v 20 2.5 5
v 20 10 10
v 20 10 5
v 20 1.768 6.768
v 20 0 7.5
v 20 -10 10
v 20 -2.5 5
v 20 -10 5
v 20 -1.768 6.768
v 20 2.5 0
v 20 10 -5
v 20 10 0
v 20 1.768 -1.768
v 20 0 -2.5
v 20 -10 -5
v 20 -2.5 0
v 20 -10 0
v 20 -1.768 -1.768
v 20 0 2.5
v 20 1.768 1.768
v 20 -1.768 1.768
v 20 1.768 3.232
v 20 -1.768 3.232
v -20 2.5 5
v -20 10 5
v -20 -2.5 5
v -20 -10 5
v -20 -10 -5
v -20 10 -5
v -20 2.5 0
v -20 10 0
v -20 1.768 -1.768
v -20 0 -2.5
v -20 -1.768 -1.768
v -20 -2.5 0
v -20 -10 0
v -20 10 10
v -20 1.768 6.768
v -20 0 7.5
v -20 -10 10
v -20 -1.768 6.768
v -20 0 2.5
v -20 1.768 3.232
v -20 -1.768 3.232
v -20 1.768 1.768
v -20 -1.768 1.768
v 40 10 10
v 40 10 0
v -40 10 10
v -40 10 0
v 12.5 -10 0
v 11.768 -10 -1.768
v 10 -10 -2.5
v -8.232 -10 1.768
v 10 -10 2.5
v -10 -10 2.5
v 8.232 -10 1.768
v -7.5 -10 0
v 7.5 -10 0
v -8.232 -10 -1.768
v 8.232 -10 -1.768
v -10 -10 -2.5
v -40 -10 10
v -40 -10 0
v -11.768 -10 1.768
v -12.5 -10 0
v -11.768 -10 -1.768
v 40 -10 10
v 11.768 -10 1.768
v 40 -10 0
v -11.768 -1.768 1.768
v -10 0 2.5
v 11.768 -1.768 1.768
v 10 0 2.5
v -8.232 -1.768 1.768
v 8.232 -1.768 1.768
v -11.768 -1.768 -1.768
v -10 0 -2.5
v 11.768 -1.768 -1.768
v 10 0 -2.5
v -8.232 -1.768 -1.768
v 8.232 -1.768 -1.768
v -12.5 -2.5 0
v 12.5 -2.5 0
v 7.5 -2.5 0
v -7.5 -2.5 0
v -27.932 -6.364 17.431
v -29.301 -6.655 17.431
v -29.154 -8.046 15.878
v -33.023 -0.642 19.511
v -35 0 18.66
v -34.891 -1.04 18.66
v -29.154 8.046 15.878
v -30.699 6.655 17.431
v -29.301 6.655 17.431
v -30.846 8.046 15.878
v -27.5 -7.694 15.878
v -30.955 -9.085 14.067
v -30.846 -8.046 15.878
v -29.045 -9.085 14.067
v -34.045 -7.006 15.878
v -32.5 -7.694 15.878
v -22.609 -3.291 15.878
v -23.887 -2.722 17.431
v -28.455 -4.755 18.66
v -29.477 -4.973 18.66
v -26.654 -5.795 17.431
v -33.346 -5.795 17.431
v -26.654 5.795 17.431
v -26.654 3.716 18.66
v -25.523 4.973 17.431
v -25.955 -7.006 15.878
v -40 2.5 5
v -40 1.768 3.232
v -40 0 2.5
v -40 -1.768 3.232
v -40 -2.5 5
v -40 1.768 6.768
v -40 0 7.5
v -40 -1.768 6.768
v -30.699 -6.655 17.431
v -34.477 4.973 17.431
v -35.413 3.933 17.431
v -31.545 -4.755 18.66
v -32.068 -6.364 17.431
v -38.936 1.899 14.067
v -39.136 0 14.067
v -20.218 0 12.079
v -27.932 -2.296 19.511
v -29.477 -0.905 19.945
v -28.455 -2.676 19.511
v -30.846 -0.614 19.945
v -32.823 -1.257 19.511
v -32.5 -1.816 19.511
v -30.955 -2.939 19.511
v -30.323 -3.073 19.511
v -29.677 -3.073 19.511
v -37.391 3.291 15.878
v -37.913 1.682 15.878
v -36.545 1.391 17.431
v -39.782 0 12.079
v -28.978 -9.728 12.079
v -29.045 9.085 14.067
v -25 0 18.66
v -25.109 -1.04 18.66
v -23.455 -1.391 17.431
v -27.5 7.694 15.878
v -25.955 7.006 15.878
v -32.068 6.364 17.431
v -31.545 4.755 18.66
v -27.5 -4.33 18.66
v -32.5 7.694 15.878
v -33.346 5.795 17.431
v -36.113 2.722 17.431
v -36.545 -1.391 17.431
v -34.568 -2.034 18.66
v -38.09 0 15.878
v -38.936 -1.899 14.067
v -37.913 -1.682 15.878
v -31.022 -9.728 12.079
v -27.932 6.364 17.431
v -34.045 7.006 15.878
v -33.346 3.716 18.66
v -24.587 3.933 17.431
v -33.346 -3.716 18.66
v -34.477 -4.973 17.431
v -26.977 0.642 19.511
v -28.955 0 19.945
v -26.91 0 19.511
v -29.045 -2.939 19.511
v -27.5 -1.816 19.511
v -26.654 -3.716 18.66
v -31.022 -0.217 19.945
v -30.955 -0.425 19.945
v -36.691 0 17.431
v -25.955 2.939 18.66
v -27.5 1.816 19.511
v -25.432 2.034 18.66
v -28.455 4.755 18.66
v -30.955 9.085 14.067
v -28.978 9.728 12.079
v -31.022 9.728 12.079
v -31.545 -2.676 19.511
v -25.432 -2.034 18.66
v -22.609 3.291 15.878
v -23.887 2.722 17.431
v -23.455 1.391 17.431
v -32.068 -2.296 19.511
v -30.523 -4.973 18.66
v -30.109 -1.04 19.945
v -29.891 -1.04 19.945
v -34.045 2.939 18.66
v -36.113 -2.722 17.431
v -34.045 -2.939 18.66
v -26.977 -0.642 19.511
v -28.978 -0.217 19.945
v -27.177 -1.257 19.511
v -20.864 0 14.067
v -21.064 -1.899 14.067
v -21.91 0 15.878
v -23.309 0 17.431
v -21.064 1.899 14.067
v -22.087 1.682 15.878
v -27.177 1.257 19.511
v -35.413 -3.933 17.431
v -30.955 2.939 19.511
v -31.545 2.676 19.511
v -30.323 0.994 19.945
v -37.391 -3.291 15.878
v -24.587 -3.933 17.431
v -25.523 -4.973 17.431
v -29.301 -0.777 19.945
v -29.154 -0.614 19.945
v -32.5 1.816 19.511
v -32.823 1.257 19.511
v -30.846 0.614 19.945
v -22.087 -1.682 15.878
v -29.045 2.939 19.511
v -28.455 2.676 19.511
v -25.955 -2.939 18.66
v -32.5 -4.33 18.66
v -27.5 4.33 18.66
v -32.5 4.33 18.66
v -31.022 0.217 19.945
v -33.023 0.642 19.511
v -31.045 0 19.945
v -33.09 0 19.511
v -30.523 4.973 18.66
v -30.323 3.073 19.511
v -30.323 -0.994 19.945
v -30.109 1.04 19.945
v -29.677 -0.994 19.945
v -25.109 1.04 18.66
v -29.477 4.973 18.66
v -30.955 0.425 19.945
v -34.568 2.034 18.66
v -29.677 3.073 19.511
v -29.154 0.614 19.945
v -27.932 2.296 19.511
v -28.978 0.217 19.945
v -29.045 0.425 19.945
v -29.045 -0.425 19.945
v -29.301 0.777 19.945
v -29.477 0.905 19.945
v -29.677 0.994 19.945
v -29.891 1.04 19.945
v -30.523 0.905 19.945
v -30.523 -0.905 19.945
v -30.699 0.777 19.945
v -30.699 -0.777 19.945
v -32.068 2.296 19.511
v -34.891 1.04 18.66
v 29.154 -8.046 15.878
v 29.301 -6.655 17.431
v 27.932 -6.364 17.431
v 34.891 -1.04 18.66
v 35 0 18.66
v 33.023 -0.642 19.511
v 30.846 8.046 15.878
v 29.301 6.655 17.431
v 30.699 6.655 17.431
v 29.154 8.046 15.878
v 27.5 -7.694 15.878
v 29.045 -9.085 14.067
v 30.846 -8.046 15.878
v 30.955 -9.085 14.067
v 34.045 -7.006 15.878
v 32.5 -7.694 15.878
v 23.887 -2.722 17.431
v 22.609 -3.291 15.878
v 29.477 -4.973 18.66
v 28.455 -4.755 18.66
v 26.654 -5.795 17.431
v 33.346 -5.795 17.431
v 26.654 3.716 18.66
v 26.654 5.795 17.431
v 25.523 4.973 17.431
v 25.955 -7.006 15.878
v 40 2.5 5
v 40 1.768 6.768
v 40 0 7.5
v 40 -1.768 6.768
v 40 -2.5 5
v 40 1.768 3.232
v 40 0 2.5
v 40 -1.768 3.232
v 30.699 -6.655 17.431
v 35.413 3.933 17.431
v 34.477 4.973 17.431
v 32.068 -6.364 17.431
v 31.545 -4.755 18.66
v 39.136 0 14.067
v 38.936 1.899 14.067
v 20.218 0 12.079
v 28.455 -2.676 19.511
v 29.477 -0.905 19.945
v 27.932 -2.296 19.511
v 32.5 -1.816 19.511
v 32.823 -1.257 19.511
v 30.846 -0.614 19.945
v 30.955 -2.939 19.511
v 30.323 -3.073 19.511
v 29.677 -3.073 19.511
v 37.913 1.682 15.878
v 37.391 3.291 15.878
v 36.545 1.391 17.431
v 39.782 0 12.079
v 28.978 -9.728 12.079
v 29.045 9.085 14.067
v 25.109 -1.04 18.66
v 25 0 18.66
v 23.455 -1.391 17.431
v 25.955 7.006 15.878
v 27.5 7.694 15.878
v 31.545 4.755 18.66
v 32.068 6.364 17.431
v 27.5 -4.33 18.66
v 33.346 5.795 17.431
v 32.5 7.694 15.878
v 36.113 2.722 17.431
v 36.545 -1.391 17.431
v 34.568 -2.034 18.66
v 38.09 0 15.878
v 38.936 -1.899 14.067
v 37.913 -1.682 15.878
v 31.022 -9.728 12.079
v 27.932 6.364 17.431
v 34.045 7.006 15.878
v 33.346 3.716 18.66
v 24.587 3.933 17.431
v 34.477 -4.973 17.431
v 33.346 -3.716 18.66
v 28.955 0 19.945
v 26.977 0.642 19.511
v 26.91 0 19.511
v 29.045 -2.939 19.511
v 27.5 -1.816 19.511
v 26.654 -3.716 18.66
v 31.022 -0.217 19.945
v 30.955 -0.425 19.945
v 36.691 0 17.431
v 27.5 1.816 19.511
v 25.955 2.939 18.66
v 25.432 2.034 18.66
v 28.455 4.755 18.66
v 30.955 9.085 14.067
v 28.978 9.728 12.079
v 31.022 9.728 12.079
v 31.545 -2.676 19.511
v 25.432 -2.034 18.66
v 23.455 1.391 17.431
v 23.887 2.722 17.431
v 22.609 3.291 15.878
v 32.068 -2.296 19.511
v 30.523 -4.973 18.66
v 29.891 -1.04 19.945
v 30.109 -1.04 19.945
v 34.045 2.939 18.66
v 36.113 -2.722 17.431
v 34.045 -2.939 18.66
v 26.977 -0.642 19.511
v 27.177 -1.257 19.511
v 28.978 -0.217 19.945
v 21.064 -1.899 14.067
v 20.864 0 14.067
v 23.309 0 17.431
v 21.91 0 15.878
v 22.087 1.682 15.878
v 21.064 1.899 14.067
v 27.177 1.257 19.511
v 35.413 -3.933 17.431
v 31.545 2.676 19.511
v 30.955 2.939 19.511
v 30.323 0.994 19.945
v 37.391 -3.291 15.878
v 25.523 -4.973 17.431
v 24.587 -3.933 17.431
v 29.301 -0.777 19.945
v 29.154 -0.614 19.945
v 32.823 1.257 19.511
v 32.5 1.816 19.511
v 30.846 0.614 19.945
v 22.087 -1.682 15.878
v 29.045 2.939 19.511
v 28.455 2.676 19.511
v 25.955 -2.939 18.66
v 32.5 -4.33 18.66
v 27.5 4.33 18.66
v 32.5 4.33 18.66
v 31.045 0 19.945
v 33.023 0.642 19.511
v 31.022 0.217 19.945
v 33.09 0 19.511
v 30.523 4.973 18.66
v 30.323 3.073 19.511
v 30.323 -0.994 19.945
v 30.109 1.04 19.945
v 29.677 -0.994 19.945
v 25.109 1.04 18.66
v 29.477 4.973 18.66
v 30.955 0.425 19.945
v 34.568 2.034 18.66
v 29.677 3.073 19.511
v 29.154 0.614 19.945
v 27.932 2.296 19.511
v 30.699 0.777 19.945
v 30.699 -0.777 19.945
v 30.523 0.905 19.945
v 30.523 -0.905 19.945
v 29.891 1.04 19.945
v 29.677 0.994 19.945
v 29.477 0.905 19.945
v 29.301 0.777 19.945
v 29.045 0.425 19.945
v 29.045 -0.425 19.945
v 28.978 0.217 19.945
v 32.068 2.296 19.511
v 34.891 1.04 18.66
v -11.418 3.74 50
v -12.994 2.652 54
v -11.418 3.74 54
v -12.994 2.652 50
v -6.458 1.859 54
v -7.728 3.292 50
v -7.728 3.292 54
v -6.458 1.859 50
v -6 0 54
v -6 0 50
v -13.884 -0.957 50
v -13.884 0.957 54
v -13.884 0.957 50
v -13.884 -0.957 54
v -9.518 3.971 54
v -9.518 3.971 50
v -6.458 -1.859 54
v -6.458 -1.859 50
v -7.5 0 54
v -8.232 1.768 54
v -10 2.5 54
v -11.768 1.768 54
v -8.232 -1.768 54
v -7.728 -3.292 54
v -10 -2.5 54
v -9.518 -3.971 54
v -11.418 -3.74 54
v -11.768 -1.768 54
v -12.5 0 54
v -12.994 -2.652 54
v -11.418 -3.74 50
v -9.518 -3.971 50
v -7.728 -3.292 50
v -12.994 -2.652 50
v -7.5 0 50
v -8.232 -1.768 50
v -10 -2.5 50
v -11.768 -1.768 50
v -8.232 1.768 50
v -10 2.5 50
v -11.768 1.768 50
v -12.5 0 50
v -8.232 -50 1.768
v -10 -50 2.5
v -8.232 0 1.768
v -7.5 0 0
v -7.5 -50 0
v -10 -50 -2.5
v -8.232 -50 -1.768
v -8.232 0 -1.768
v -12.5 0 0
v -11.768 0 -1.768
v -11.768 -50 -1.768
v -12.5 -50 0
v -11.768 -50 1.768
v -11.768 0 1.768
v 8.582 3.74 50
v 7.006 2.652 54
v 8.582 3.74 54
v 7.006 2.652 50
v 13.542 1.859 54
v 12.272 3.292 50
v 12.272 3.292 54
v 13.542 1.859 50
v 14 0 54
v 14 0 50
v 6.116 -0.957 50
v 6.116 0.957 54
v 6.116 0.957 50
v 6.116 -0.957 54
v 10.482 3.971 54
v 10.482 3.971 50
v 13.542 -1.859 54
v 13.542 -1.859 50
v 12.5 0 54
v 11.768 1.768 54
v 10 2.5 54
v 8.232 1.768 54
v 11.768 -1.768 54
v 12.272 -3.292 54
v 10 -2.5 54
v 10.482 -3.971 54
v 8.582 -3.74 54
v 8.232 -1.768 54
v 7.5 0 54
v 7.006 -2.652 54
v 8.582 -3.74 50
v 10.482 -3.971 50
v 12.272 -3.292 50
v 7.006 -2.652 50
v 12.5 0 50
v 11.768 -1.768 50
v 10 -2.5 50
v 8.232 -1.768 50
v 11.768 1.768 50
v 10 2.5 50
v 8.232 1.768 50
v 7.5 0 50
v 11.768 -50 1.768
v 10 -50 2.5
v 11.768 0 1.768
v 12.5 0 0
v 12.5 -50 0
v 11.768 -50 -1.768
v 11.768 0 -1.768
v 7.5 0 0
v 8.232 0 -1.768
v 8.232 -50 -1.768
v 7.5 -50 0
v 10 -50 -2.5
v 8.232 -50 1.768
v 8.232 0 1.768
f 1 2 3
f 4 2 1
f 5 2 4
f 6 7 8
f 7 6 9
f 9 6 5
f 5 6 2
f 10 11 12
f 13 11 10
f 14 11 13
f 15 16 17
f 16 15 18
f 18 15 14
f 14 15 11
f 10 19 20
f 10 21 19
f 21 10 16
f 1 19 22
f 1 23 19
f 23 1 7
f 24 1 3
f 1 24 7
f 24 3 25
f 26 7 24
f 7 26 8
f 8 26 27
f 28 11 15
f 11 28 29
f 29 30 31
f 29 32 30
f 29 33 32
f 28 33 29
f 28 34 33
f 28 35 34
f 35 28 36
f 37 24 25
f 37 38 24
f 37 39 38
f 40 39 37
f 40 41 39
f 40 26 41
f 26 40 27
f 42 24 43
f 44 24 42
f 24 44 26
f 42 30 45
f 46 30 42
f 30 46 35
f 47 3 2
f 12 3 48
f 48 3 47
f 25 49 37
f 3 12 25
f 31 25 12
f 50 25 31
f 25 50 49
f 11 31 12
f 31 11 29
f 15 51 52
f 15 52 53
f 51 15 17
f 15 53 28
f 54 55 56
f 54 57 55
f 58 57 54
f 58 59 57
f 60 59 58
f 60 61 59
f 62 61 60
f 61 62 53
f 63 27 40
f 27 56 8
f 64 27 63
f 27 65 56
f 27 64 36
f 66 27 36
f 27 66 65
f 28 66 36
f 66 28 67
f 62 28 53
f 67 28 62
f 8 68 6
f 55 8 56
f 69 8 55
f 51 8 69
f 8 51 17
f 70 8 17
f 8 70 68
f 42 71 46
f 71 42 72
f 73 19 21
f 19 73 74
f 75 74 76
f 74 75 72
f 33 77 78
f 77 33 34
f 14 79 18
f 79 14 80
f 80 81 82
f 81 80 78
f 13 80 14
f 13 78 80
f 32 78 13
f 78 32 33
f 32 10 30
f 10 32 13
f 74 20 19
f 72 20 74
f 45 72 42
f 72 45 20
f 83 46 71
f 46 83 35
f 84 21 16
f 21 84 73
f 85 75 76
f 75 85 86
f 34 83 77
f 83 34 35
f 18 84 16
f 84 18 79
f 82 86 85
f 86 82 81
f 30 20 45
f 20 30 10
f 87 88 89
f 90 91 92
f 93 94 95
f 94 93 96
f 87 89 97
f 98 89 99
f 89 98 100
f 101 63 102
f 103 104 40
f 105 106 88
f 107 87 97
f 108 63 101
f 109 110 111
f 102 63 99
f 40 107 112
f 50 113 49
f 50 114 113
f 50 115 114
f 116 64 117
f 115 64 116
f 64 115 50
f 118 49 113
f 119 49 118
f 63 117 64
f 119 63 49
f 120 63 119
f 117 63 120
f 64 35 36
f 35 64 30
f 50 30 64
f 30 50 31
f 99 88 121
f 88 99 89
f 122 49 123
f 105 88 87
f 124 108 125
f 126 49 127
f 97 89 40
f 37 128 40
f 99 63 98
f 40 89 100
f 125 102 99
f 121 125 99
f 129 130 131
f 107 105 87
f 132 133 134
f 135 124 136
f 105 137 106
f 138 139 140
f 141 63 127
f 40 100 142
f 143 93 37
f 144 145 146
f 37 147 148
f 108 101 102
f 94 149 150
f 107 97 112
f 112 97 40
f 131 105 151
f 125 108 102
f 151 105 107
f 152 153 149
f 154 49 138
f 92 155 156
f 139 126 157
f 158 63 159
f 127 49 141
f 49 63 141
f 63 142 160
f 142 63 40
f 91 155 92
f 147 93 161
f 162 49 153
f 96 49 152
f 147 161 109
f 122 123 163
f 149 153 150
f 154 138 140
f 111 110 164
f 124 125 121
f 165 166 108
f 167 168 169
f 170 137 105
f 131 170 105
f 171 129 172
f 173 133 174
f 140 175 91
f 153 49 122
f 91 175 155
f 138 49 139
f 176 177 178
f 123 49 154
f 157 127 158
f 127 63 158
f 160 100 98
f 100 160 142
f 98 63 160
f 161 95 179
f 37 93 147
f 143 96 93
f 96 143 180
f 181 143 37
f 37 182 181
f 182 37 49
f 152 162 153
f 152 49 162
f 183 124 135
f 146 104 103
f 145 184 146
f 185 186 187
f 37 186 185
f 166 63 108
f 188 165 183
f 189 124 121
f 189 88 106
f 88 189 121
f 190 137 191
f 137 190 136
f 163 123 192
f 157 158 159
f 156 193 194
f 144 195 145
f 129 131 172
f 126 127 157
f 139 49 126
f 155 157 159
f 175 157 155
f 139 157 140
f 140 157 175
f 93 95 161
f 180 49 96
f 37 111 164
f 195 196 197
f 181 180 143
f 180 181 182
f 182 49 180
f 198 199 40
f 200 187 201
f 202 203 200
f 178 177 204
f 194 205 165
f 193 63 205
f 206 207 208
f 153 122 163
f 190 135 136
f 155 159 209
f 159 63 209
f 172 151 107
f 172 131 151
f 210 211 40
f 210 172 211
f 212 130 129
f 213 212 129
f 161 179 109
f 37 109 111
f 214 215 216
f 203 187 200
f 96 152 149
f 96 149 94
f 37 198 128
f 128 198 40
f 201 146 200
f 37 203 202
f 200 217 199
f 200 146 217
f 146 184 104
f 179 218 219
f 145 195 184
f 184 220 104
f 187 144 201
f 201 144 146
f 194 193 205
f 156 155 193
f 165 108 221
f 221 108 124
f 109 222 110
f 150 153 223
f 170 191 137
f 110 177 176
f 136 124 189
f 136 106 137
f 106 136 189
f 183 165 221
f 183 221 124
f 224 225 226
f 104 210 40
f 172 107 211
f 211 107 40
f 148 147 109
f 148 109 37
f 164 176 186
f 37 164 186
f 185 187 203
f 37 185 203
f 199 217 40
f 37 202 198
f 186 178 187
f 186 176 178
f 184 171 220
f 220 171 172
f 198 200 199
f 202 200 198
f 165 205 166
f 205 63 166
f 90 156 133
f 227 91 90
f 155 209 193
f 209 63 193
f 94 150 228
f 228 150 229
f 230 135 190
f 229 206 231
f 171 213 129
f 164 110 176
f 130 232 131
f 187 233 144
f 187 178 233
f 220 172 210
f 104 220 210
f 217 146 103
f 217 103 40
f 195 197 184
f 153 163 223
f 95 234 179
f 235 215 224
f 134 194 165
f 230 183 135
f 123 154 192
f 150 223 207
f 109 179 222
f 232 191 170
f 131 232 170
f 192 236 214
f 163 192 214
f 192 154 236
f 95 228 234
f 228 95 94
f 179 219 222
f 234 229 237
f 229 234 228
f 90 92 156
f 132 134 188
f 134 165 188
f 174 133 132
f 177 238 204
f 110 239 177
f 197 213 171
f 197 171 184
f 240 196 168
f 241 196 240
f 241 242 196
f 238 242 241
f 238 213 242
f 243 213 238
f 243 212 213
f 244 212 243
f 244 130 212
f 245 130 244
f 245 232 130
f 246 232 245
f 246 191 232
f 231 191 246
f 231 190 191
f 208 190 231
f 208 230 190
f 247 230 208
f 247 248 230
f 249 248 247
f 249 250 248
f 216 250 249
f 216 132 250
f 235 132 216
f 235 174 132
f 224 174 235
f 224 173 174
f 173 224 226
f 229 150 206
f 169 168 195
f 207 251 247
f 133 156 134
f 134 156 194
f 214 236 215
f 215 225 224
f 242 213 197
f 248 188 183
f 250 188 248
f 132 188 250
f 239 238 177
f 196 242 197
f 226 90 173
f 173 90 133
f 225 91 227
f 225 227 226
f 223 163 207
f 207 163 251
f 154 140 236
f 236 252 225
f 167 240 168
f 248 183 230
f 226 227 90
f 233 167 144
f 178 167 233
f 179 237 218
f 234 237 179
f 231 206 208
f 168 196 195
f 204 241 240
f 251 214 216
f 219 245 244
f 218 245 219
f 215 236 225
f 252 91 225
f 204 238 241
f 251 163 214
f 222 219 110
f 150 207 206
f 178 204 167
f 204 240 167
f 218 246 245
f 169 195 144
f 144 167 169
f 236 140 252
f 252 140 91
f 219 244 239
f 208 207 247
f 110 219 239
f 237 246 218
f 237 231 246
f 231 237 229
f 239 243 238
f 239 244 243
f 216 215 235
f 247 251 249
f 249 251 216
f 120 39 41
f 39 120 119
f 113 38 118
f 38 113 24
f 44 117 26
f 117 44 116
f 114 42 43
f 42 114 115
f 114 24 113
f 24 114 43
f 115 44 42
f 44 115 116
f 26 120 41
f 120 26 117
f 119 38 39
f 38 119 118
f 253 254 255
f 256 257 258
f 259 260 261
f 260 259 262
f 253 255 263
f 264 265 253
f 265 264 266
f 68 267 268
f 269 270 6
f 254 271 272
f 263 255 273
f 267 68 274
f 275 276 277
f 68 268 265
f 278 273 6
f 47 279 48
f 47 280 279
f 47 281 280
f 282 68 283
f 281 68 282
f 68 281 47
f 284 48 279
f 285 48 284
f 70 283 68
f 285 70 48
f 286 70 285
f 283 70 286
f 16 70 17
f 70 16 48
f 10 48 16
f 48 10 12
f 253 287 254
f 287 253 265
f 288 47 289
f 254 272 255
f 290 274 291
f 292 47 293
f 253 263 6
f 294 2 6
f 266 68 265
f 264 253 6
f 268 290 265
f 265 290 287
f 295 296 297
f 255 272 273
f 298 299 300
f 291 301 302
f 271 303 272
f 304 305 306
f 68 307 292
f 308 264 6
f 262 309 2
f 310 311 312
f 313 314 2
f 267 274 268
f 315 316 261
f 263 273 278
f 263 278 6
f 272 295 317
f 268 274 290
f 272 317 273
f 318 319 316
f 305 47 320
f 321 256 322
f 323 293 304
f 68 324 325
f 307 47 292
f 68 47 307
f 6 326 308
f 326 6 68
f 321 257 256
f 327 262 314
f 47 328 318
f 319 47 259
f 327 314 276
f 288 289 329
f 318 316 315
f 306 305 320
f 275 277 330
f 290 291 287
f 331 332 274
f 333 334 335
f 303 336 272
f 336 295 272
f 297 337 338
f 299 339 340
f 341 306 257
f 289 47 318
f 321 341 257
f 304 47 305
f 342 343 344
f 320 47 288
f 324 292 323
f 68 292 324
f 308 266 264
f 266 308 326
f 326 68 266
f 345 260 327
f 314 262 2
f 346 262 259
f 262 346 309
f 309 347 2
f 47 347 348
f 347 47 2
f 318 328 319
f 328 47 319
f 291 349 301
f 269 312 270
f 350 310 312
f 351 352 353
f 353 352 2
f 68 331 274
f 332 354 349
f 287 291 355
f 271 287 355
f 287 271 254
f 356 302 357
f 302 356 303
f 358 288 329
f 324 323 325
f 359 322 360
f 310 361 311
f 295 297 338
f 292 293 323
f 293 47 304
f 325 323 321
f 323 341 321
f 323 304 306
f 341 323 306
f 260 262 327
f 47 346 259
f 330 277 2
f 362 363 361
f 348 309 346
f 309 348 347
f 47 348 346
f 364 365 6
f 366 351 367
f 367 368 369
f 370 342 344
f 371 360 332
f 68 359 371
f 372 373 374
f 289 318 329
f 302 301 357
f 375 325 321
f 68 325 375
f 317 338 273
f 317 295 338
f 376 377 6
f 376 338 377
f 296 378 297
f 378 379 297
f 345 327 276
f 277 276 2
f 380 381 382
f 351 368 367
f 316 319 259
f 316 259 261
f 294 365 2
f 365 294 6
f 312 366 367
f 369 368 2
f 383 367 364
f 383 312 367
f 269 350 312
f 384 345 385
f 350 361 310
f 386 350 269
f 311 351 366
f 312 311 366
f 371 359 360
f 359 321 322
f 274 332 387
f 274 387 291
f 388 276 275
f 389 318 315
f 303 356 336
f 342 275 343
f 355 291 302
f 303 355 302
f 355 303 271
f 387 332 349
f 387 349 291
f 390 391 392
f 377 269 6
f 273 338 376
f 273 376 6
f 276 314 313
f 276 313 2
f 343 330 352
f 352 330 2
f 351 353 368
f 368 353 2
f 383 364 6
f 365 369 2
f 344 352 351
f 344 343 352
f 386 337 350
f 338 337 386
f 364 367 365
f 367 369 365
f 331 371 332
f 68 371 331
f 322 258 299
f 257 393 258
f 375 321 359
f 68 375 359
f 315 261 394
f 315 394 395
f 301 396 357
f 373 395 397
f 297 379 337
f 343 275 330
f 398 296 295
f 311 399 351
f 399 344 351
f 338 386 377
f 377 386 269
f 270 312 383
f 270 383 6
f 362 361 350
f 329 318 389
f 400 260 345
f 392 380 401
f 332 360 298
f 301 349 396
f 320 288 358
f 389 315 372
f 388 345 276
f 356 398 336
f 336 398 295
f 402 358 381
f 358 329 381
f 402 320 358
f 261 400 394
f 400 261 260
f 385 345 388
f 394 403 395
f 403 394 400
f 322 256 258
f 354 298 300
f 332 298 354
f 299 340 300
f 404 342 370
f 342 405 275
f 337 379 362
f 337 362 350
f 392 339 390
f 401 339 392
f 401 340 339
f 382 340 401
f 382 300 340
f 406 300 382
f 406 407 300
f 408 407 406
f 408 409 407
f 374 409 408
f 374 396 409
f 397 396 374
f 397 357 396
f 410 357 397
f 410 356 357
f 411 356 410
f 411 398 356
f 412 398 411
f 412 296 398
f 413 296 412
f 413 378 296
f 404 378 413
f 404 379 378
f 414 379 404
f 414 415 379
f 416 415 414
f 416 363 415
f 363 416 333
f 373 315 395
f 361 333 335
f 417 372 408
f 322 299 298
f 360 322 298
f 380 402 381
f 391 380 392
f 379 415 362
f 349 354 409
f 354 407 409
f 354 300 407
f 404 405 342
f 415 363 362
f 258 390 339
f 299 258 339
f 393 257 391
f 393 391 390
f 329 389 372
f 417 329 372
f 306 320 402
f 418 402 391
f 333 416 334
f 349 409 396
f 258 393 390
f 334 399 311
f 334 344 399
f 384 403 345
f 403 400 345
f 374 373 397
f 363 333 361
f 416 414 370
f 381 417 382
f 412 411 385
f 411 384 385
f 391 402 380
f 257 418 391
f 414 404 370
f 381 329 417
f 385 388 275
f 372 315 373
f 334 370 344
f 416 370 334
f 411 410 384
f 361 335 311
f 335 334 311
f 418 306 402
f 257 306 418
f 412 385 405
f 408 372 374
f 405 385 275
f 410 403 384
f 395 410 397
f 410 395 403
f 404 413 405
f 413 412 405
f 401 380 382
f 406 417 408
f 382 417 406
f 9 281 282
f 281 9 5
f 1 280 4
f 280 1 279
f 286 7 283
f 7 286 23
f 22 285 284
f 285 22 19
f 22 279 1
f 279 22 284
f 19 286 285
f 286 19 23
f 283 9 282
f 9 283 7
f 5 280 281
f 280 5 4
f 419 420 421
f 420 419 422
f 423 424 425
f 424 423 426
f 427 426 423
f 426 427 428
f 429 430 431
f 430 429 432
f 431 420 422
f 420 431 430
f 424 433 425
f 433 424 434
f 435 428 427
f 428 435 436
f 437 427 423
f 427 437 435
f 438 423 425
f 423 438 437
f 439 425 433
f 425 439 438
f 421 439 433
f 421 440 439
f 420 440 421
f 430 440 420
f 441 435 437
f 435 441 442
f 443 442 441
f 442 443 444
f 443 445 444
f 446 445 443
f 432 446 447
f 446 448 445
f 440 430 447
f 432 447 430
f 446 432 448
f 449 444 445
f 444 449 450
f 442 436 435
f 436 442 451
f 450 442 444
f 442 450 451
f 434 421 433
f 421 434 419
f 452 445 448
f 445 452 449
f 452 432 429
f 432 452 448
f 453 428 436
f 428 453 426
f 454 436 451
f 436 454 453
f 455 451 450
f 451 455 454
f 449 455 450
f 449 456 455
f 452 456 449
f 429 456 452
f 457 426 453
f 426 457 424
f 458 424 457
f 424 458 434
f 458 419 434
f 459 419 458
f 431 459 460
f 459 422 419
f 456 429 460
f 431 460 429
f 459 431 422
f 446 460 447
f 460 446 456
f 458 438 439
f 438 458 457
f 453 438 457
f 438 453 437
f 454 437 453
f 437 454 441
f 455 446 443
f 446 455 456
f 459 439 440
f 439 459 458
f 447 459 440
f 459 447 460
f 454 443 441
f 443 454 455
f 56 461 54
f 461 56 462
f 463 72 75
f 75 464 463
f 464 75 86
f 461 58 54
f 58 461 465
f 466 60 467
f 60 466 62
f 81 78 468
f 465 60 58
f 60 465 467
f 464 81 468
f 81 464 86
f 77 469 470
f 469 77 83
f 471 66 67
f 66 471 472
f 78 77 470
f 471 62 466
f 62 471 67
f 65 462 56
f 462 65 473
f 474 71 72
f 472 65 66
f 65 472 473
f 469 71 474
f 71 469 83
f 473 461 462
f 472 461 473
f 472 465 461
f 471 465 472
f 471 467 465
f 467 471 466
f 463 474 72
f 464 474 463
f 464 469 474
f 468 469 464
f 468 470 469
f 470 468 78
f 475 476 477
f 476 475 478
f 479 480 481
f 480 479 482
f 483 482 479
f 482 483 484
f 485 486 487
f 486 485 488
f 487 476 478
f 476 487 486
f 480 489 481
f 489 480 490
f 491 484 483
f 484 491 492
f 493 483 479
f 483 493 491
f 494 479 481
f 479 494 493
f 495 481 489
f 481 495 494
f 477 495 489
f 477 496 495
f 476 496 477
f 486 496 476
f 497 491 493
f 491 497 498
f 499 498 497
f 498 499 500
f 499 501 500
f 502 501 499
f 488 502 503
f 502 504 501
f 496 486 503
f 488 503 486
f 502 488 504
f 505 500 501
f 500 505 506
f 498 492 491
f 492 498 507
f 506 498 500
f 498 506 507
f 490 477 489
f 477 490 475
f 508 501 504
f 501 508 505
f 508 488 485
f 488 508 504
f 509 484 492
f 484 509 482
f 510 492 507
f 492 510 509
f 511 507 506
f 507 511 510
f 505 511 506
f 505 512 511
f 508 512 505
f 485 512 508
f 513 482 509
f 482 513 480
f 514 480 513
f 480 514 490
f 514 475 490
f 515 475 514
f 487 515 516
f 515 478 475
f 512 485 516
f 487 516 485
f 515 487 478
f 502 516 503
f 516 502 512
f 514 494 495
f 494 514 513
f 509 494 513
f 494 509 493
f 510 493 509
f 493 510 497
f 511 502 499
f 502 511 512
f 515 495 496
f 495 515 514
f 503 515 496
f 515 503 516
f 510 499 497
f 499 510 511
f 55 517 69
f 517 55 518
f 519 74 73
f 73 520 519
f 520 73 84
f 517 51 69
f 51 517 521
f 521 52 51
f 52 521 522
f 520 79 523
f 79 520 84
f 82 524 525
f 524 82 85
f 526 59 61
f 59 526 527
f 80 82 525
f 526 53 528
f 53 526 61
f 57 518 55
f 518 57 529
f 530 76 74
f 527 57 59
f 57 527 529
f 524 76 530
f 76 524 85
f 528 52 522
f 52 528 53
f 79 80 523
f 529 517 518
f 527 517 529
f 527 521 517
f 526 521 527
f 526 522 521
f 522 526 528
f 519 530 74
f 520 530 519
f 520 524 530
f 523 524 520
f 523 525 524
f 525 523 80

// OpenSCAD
// Parameters
central_block_length = 40;
central_block_width = 20;
central_block_height = 10;
hole_diameter = 5;
hole_offset = 10;

side_block_length = 20;
side_block_width = 20;
side_block_height = 10;
side_block_curve_radius = 10;

bolt_diameter = 5;
bolt_length = 50;

nut_diameter = 8;
nut_thickness = 4;

// Central Block
module central_block() {
    difference() {
        cube([central_block_length, central_block_width, central_block_height], center = true);
        translate([-central_block_length/2 + hole_offset, 0, 0])
            rotate([0, 90, 0])
            cylinder(r = hole_diameter/2, h = central_block_width + 2, center = true);
        translate([central_block_length/2 - hole_offset, 0, 0])
            rotate([0, 90, 0])
            cylinder(r = hole_diameter/2, h = central_block_width + 2, center = true);
    }
}

// Side Block
module side_block() {
    difference() {
        hull() {
            translate([-side_block_length/2, -side_block_width/2, 0])
                cube([side_block_length, side_block_width, side_block_height]);
            translate([0, 0, side_block_height])
                sphere(r = side_block_curve_radius);
        }
        translate([-side_block_length/2 + hole_offset, 0, side_block_height/2])
            rotate([0, 90, 0])
            cylinder(r = hole_diameter/2, h = side_block_width + 2, center = true);
    }
}

// Bolt
module bolt() {
    cylinder(r = bolt_diameter/2, h = bolt_length, center = false);
}

// Nut
module nut() {
    difference() {
        cylinder(r = nut_diameter/2, h = nut_thickness, center = false);
        translate([0, 0, nut_thickness/2])
            cylinder(r = bolt_diameter/2, h = nut_thickness + 2, center = true);
    }
}

// Assembly
module assembly() {
    // Central Block
    central_block();

    // Side Blocks
    translate([-central_block_length/2 - side_block_length/2, 0, 0])
        side_block();
    translate([central_block_length/2 + side_block_length/2, 0, 0])
        mirror([1, 0, 0])
            side_block();

    // Bolts and Nuts
    for (i = [-1, 1]) {
        translate([i * (central_block_length/2 - hole_offset), 0, 0]) {
            rotate([90, 0, 0])
                bolt();
            translate([0, 0, bolt_length])
                nut();
        }
    }
}

// Render the assembly
assembly();
